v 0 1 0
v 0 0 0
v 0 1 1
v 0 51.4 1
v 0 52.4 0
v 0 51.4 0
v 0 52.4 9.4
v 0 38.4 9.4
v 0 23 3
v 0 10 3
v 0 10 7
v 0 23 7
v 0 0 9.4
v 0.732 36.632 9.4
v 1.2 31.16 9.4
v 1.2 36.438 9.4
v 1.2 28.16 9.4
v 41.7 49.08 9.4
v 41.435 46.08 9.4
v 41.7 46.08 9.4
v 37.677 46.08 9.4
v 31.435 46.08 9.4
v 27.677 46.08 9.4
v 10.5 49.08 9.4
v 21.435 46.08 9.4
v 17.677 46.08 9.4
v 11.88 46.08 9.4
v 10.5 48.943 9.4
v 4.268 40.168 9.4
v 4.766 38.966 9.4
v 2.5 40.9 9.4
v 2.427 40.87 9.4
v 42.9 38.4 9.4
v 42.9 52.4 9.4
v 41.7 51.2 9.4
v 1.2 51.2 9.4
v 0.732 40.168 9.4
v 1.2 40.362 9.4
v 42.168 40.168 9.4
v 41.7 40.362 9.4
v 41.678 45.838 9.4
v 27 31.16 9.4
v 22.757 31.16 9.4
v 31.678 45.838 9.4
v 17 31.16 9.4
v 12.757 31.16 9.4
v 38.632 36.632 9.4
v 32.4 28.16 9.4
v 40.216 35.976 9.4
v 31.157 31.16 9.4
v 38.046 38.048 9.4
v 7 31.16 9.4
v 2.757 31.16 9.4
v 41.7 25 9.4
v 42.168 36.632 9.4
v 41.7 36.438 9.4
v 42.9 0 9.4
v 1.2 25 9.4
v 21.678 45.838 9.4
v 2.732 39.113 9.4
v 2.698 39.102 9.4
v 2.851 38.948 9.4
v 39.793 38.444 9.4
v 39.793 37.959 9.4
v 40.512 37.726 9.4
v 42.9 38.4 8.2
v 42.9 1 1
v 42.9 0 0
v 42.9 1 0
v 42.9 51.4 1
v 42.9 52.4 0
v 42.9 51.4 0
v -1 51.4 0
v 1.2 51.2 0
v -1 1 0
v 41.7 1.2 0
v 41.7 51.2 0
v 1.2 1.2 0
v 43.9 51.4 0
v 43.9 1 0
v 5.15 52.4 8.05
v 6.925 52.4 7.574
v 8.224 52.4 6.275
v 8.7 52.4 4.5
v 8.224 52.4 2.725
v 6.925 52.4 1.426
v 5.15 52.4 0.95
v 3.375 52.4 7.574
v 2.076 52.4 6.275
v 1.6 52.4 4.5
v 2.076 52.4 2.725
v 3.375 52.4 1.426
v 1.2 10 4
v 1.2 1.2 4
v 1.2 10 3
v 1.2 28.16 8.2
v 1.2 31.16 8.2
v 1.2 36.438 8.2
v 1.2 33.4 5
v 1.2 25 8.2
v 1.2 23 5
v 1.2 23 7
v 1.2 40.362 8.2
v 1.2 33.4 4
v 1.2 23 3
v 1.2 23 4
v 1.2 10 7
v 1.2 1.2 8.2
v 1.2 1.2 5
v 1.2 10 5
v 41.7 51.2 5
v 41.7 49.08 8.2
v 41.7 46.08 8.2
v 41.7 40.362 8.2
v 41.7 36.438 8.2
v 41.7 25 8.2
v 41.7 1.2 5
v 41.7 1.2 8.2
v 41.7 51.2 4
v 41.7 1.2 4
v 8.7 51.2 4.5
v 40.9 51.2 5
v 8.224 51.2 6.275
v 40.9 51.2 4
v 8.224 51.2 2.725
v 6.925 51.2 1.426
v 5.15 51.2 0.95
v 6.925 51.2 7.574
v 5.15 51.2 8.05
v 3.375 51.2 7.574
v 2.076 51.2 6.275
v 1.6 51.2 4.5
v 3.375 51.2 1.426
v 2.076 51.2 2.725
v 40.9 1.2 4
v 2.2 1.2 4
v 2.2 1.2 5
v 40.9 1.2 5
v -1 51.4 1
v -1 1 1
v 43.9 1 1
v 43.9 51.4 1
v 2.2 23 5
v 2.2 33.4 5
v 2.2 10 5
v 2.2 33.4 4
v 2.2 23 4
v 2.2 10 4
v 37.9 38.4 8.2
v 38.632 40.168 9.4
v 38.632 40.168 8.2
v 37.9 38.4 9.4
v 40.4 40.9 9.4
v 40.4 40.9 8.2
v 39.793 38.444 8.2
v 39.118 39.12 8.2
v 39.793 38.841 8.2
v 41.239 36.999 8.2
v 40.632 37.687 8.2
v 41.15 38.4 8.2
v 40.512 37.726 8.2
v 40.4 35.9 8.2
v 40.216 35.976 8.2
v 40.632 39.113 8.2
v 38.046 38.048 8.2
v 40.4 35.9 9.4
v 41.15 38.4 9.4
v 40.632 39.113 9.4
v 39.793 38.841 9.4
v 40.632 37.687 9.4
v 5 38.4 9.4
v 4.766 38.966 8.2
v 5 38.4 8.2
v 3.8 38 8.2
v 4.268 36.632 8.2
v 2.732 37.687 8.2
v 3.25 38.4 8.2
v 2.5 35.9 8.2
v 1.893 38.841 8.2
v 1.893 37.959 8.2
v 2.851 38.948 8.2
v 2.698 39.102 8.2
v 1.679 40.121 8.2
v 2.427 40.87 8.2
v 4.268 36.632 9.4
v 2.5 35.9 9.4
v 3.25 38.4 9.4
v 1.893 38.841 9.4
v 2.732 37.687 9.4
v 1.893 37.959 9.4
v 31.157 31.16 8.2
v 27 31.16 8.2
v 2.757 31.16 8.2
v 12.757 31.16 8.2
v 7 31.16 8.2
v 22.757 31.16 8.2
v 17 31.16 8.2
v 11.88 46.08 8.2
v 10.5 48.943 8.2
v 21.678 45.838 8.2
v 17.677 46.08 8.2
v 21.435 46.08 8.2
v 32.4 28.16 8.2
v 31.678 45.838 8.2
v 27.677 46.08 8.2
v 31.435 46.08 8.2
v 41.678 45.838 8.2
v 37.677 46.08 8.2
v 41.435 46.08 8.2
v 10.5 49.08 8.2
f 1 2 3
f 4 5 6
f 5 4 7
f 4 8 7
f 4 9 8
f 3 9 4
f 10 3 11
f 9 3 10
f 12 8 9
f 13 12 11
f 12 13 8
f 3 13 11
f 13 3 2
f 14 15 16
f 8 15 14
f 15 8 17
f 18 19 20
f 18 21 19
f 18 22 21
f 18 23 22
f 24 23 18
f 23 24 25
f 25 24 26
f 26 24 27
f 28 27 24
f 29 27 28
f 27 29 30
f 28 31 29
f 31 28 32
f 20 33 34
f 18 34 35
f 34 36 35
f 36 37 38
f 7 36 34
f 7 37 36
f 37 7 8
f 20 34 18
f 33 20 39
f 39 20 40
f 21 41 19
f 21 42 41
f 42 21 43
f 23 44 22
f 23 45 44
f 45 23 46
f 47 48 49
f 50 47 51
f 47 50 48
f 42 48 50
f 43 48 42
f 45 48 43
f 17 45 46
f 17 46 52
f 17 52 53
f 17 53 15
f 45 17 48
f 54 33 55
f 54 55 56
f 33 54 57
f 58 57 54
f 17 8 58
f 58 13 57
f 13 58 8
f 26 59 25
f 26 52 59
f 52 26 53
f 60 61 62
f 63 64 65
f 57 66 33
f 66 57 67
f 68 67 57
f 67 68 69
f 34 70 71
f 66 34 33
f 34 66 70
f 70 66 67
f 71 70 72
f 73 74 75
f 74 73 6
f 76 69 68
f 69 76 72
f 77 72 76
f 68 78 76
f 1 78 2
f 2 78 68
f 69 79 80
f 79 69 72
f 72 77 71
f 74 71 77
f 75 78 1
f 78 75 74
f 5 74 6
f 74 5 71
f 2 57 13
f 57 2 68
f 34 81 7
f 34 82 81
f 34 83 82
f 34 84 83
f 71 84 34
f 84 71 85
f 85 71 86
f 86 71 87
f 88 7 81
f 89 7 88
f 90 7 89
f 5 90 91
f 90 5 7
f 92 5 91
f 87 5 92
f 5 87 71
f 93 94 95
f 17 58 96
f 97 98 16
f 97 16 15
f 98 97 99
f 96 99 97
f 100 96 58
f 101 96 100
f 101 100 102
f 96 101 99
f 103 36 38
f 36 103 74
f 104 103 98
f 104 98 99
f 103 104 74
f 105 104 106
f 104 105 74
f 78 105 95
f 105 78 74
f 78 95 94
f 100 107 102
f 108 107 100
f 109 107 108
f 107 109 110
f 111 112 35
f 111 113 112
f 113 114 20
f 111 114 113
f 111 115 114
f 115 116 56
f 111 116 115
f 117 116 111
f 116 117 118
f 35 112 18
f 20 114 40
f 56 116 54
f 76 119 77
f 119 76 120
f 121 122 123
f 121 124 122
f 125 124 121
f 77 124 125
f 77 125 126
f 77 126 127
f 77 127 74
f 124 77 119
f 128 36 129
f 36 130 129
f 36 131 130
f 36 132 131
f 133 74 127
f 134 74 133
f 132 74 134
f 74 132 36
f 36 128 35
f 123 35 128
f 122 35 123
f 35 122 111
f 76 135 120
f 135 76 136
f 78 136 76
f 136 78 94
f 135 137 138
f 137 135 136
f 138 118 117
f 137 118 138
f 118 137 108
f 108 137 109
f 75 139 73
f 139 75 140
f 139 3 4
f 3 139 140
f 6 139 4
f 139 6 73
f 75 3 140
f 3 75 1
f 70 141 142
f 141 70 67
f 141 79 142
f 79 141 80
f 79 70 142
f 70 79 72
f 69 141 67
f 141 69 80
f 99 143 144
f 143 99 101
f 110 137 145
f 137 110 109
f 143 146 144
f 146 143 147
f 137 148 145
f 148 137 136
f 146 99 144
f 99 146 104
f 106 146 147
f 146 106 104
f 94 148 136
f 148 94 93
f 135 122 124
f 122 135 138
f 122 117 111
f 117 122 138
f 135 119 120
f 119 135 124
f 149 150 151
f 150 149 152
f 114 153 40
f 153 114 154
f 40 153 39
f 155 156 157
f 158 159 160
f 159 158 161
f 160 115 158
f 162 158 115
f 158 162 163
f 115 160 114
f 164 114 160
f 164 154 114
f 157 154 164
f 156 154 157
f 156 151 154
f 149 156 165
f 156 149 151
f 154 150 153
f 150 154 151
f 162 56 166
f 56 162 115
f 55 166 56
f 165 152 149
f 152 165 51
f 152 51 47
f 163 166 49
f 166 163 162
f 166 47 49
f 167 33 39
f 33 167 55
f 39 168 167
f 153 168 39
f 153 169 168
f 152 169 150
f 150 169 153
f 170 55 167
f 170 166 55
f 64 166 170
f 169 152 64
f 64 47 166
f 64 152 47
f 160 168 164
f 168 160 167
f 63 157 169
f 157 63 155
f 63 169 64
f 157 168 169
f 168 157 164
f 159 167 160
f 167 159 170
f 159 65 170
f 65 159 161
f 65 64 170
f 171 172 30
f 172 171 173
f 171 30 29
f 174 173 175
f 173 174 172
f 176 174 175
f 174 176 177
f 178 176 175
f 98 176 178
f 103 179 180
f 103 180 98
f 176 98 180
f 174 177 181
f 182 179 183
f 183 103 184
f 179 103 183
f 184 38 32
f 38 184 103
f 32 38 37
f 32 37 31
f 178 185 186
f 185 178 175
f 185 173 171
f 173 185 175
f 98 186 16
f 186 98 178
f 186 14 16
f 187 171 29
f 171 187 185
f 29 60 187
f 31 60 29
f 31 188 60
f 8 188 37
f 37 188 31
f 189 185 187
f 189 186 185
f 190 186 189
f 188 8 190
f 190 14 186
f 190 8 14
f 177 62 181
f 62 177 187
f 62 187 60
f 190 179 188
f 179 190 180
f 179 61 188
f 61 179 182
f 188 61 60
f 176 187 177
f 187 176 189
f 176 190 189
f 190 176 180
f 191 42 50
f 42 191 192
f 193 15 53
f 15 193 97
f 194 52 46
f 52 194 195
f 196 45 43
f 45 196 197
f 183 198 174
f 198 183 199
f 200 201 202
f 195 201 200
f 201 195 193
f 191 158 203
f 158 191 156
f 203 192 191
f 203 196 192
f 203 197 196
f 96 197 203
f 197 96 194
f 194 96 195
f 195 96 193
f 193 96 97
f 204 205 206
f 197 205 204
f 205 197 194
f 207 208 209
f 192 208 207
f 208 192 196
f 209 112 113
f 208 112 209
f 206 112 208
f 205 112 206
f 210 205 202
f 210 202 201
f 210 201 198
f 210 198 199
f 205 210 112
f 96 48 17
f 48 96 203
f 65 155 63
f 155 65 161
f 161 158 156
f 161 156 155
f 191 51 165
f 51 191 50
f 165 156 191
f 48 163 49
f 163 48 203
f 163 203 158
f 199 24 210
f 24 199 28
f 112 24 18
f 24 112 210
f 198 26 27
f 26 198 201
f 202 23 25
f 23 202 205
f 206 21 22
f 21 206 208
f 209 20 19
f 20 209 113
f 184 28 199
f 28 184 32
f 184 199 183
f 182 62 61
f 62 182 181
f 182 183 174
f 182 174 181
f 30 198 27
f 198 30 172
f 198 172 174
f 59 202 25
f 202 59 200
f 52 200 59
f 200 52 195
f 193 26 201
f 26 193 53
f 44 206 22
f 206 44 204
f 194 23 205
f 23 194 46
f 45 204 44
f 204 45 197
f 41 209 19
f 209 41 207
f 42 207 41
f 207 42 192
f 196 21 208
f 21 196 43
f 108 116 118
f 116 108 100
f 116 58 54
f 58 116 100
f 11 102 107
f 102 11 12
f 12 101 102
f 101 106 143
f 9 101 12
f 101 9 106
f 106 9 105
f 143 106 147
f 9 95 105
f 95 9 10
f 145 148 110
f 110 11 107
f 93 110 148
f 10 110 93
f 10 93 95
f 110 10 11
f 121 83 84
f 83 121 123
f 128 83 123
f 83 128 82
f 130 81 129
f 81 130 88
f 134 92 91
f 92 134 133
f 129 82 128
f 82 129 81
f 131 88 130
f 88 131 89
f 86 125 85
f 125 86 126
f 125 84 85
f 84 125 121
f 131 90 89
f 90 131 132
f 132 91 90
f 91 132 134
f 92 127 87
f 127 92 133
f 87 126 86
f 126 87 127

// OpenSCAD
// IAQ Cover and Base v0.3
// Sept 2016
// Initial Design to Protect Sensor Board IAQ Circuit Board Designed by Akram Ali
// CRT Labs / National Association of REALTORS
// https://crtlabs.org
////////////////////////////////////////////////
// Includes and Definitions
////////////////////////////////////////////////

top_cover_height = 7;
base_width = 50;
base_length = 40.5;
case_shell = 1.2;
case_shell_buffer = 2 * case_shell;
spacer = 10;

////////////////////////////////////////////////
// Modules 
/////////////////////////////////////////////////

module top_slides() {
    translate([-1, 1, 0])
    cube([1, base_width + 2 * case_shell - 2, 1]);

    translate([base_length + 2 * case_shell, 1, 0])
    cube([1, base_width + 2 * case_shell - 2, 1]);


}


module inner_channel() {
    translate([case_shell, 1, top_cover_height - 3])
    color("red") cube([1, base_width + 2 * case_shell - 20, 1]);

    translate([base_length + (2 * case_shell - 2), 1, top_cover_height - 3])
    color("blue") cube([1, base_width + 2 * case_shell - 2, 1]);


}
module outer_channel_cutout() {
    translate([0, 0, 3])
    cube([.6, base_width+2 * case_shell, 1]);

    //translate([base_length + (2 * case_shell), 0, 3])
    //cube([.6, base_width+2 * case_shell, 1]);


}
module build_bottom() {

    difference() {
        build_bottom_parts();
        bottom_cutouts();
        translate([-3, 0, -2])
        usb_cutout();

    }
}

module build_bottom_parts() {
    color("pink") translate([-2.5, 0, 1.4])
    cube([2, base_width + 2 * case_shell, 1]);

    translate([base_length + 2 * case_shell + .75, 0, 1.4])
    color("blue") cube([2, base_width + 2 * case_shell, 1]);

    translate([-2.5, 0, -1.5])
    color("gray") cube([1, base_width + 2 * case_shell, 3.25]);

    translate([base_length + 2 * case_shell + 1.75, 0, -1.5])
    color("orange") cube([1, base_width + 2 * case_shell, 3.25]);

    translate([-2.5, 0, -1.5])
    cube([base_length + 2 * case_shell + 4.3, base_width + 2 * case_shell, 1.25]);

}

module microphone() {
    microphone_x = 5;
    microphone_y = 37;
    translate([case_shell, case_shell, -2])
    translate([microphone_x, microphone_y, 0]) {
        color("red") cylinder(h = case_shell+2, d1 = 4, d2 = 4);
    }
}

module walls() {
    difference() {
        cube([base_length + 2 * case_shell, base_width + 2 * case_shell, top_cover_height + 2 * case_shell]);
        translate([case_shell, case_shell, 0])
        cube([base_length, base_width, top_cover_height + 2 * case_shell]);
    }

}

module top_solid_cover() {
    translate([0, 0, top_cover_height + case_shell])
    cube([base_length + 2 * case_shell, base_width / 2, case_shell]);

}

module top_traces() {
    ////translate([0, 0, top_cover_height +  case_shell+1])
    cube([base_length + 2 * case_shell, base_width / 2, case_shell]);

}


module top_cutouts() {
    usb_cutout();
    antenna();
    //outer_channel_cutout(); 

}

module cover_art() {
    
   //linear_extrude(height = 1, center = true, convexity = 10)
   //import (file = "includes/case.dxf");
    
    trace_thickness=3;
    via_diameter=5;
    via_cutout=1.5;
    ceiling = top_cover_height + case_shell;
    
    translate([0, (base_width + case_shell) *55/100, top_cover_height + case_shell])
      color("red")  cube([base_length*4/5, trace_thickness, case_shell]);
    
      
    translate([base_length*4/5, (base_width + case_shell) *55/100, top_cover_height + case_shell])
      color("red")
        rotate(45,0,0)
            cube([12.5, trace_thickness, case_shell]);
    
    
    translate([base_length-via_diameter/2+case_shell_buffer, (base_width + case_shell) *75/100, ceiling])
     difference(){
        color("red") cylinder(h = case_shell, d1 = via_diameter, d2 = via_diameter);
           cylinder(h = case_shell, d1 = via_cutout, d2 = via_cutout);
     }
    
    translate([base_length/5+ case_shell_buffer, (base_width + case_shell) *9/10, ceiling])
    color("blue")cube([base_length*4/5,trace_thickness, case_shell]);

    translate([via_diameter/2, (base_width + case_shell) *75/100, top_cover_height + case_shell])
     difference(){
        color("blue") cylinder(h = case_shell, d1 = via_diameter, d2 = via_diameter);
           cylinder(h = case_shell, d1 = via_cutout, d2 = via_cutout);
     }

  translate([via_diameter-case_shell, (base_width + case_shell) *75/100 -.4, ceiling])
      color("blue")
        rotate(45,0,0)
            cube([12.5, trace_thickness, case_shell]);

translate([4,(base_width + case_shell) *55/100, ceiling])
      color("green")
        rotate(45,0,0)
            cube([25, trace_thickness, case_shell]);
     
     translate([14,(base_width + case_shell) *55/100, ceiling])
      color("orange")
        rotate(45,0,0)
            cube([25, trace_thickness, case_shell]);
     
        translate([24,(base_width + case_shell) *55/100, ceiling])
      color("orange")
        rotate(45,0,0)
            cube([25, trace_thickness, case_shell]);
     

}

module antenna() {
  antenna_x = 3.95;
  antenna_y = base_width;
  translate([case_shell, case_shell*2, 0])
    translate([antenna_x, antenna_y, 4.5]) {
      color("red") 
        rotate([90,0,0])
            cylinder(h = case_shell, d1 = 7.1, d2 = 7.1);
  }
}

module bottom_cutouts() {

    microphone();
}

module usb_cutout() {
    translate([0, 10, 3])
    cube([5, 13, 4]);
}


module build_top() {
    difference() {
        build_top_parts();
        top_cutouts();
    }

}

module build_top_parts() {


    walls();
    //  translate([1,1, top_cover_height +1])
    // bottom_part(rows, columns, cell_step, inner_walls, outer_walls, height);
    top_slides();
    inner_channel();
    top_solid_cover();
    cover_art();


}

module main() {
    //translate ([0,0,top_cover_height + 2 * case_shell])
    //rotate([180,0,0]){
    //difference(){
    build_top();
    
    //  top_cutouts();
    //}
    // translate([1,spacer,0])

    //build_bottom();

}


//add_text();
//}


main();
